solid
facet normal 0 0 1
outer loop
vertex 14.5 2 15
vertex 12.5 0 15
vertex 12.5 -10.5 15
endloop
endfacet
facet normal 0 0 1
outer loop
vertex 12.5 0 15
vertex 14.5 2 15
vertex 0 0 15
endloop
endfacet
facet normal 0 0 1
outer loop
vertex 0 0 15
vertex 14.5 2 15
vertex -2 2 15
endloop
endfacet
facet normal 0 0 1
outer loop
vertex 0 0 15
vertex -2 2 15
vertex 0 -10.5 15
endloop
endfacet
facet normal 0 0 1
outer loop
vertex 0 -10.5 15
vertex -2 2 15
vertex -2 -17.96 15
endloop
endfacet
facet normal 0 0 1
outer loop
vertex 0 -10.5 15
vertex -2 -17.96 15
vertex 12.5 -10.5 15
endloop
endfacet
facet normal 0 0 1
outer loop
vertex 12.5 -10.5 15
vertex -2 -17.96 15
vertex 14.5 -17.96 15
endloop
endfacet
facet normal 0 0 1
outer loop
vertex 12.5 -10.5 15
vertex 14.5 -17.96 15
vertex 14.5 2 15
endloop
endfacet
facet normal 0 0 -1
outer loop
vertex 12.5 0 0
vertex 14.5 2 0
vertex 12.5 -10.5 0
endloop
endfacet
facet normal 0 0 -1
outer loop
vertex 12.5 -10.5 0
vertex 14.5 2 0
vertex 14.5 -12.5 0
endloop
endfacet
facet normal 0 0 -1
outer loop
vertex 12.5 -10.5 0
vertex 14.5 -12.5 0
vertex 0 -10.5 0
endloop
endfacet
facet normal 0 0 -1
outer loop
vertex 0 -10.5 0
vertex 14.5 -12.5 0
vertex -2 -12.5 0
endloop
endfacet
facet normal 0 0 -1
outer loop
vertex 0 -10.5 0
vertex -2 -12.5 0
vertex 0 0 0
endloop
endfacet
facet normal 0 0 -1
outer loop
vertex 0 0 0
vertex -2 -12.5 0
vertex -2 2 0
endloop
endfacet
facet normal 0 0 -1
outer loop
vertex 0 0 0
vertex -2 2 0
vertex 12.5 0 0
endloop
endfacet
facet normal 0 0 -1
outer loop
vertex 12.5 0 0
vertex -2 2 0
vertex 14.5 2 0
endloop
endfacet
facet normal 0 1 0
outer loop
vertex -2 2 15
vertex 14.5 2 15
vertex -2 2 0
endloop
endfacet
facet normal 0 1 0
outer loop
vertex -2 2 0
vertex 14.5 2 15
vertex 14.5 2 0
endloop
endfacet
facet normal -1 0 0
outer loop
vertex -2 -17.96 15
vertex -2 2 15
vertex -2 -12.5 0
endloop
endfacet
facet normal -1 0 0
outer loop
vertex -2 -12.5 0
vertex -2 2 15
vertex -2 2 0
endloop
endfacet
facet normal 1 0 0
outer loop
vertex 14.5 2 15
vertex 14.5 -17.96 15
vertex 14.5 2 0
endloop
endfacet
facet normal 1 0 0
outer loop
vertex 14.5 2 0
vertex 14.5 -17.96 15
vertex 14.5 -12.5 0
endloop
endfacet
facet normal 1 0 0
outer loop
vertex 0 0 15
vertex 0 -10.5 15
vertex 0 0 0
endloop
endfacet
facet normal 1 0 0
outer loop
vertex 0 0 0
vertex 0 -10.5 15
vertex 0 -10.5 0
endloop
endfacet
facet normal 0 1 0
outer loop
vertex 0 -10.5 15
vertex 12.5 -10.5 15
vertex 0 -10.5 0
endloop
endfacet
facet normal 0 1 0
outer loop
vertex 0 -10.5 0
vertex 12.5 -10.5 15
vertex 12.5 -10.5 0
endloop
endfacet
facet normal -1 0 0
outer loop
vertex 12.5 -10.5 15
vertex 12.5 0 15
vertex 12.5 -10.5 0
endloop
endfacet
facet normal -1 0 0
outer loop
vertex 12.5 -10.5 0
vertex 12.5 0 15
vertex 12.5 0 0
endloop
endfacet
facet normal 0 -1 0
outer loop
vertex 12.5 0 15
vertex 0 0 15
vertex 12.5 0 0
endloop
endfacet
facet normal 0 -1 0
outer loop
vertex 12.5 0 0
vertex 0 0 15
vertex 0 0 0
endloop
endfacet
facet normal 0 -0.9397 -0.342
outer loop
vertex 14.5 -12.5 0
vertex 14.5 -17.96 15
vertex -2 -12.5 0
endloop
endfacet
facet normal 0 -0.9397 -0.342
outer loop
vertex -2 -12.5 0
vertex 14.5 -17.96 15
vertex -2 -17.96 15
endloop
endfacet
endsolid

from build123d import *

# Parameters (mm, degrees)
SKETCH1_W           = 16.5
SKETCH1_H           = 14.5
SKETCH1_W_2         = 12.5
SKETCH1_H_2         = 10.5
BOSS_EXTRUDE1_DEPTH = 15
BOSS_EXTRUDE2_DEPTH = 16.5


with BuildPart() as part:
    # Sketch1 → Boss-Extrude1 (new body)
    with BuildSketch(Plane.XY):
        with Locations((6.25, -5.25)):
            Rectangle(SKETCH1_W, SKETCH1_H)
        with Locations((6.25, -5.25)):
            Rectangle(SKETCH1_W_2, SKETCH1_H_2, mode=Mode.SUBTRACT)
    extrude(amount=BOSS_EXTRUDE1_DEPTH)

    # Sketch2 → Boss-Extrude2 (add)
    with BuildSketch(Plane.ZY.offset(2)):
        Polygon((0, -12.5), (15, -17.959553514), (15, -12.5), align=None)
    extrude(amount=-BOSS_EXTRUDE2_DEPTH)


solid = part.part
